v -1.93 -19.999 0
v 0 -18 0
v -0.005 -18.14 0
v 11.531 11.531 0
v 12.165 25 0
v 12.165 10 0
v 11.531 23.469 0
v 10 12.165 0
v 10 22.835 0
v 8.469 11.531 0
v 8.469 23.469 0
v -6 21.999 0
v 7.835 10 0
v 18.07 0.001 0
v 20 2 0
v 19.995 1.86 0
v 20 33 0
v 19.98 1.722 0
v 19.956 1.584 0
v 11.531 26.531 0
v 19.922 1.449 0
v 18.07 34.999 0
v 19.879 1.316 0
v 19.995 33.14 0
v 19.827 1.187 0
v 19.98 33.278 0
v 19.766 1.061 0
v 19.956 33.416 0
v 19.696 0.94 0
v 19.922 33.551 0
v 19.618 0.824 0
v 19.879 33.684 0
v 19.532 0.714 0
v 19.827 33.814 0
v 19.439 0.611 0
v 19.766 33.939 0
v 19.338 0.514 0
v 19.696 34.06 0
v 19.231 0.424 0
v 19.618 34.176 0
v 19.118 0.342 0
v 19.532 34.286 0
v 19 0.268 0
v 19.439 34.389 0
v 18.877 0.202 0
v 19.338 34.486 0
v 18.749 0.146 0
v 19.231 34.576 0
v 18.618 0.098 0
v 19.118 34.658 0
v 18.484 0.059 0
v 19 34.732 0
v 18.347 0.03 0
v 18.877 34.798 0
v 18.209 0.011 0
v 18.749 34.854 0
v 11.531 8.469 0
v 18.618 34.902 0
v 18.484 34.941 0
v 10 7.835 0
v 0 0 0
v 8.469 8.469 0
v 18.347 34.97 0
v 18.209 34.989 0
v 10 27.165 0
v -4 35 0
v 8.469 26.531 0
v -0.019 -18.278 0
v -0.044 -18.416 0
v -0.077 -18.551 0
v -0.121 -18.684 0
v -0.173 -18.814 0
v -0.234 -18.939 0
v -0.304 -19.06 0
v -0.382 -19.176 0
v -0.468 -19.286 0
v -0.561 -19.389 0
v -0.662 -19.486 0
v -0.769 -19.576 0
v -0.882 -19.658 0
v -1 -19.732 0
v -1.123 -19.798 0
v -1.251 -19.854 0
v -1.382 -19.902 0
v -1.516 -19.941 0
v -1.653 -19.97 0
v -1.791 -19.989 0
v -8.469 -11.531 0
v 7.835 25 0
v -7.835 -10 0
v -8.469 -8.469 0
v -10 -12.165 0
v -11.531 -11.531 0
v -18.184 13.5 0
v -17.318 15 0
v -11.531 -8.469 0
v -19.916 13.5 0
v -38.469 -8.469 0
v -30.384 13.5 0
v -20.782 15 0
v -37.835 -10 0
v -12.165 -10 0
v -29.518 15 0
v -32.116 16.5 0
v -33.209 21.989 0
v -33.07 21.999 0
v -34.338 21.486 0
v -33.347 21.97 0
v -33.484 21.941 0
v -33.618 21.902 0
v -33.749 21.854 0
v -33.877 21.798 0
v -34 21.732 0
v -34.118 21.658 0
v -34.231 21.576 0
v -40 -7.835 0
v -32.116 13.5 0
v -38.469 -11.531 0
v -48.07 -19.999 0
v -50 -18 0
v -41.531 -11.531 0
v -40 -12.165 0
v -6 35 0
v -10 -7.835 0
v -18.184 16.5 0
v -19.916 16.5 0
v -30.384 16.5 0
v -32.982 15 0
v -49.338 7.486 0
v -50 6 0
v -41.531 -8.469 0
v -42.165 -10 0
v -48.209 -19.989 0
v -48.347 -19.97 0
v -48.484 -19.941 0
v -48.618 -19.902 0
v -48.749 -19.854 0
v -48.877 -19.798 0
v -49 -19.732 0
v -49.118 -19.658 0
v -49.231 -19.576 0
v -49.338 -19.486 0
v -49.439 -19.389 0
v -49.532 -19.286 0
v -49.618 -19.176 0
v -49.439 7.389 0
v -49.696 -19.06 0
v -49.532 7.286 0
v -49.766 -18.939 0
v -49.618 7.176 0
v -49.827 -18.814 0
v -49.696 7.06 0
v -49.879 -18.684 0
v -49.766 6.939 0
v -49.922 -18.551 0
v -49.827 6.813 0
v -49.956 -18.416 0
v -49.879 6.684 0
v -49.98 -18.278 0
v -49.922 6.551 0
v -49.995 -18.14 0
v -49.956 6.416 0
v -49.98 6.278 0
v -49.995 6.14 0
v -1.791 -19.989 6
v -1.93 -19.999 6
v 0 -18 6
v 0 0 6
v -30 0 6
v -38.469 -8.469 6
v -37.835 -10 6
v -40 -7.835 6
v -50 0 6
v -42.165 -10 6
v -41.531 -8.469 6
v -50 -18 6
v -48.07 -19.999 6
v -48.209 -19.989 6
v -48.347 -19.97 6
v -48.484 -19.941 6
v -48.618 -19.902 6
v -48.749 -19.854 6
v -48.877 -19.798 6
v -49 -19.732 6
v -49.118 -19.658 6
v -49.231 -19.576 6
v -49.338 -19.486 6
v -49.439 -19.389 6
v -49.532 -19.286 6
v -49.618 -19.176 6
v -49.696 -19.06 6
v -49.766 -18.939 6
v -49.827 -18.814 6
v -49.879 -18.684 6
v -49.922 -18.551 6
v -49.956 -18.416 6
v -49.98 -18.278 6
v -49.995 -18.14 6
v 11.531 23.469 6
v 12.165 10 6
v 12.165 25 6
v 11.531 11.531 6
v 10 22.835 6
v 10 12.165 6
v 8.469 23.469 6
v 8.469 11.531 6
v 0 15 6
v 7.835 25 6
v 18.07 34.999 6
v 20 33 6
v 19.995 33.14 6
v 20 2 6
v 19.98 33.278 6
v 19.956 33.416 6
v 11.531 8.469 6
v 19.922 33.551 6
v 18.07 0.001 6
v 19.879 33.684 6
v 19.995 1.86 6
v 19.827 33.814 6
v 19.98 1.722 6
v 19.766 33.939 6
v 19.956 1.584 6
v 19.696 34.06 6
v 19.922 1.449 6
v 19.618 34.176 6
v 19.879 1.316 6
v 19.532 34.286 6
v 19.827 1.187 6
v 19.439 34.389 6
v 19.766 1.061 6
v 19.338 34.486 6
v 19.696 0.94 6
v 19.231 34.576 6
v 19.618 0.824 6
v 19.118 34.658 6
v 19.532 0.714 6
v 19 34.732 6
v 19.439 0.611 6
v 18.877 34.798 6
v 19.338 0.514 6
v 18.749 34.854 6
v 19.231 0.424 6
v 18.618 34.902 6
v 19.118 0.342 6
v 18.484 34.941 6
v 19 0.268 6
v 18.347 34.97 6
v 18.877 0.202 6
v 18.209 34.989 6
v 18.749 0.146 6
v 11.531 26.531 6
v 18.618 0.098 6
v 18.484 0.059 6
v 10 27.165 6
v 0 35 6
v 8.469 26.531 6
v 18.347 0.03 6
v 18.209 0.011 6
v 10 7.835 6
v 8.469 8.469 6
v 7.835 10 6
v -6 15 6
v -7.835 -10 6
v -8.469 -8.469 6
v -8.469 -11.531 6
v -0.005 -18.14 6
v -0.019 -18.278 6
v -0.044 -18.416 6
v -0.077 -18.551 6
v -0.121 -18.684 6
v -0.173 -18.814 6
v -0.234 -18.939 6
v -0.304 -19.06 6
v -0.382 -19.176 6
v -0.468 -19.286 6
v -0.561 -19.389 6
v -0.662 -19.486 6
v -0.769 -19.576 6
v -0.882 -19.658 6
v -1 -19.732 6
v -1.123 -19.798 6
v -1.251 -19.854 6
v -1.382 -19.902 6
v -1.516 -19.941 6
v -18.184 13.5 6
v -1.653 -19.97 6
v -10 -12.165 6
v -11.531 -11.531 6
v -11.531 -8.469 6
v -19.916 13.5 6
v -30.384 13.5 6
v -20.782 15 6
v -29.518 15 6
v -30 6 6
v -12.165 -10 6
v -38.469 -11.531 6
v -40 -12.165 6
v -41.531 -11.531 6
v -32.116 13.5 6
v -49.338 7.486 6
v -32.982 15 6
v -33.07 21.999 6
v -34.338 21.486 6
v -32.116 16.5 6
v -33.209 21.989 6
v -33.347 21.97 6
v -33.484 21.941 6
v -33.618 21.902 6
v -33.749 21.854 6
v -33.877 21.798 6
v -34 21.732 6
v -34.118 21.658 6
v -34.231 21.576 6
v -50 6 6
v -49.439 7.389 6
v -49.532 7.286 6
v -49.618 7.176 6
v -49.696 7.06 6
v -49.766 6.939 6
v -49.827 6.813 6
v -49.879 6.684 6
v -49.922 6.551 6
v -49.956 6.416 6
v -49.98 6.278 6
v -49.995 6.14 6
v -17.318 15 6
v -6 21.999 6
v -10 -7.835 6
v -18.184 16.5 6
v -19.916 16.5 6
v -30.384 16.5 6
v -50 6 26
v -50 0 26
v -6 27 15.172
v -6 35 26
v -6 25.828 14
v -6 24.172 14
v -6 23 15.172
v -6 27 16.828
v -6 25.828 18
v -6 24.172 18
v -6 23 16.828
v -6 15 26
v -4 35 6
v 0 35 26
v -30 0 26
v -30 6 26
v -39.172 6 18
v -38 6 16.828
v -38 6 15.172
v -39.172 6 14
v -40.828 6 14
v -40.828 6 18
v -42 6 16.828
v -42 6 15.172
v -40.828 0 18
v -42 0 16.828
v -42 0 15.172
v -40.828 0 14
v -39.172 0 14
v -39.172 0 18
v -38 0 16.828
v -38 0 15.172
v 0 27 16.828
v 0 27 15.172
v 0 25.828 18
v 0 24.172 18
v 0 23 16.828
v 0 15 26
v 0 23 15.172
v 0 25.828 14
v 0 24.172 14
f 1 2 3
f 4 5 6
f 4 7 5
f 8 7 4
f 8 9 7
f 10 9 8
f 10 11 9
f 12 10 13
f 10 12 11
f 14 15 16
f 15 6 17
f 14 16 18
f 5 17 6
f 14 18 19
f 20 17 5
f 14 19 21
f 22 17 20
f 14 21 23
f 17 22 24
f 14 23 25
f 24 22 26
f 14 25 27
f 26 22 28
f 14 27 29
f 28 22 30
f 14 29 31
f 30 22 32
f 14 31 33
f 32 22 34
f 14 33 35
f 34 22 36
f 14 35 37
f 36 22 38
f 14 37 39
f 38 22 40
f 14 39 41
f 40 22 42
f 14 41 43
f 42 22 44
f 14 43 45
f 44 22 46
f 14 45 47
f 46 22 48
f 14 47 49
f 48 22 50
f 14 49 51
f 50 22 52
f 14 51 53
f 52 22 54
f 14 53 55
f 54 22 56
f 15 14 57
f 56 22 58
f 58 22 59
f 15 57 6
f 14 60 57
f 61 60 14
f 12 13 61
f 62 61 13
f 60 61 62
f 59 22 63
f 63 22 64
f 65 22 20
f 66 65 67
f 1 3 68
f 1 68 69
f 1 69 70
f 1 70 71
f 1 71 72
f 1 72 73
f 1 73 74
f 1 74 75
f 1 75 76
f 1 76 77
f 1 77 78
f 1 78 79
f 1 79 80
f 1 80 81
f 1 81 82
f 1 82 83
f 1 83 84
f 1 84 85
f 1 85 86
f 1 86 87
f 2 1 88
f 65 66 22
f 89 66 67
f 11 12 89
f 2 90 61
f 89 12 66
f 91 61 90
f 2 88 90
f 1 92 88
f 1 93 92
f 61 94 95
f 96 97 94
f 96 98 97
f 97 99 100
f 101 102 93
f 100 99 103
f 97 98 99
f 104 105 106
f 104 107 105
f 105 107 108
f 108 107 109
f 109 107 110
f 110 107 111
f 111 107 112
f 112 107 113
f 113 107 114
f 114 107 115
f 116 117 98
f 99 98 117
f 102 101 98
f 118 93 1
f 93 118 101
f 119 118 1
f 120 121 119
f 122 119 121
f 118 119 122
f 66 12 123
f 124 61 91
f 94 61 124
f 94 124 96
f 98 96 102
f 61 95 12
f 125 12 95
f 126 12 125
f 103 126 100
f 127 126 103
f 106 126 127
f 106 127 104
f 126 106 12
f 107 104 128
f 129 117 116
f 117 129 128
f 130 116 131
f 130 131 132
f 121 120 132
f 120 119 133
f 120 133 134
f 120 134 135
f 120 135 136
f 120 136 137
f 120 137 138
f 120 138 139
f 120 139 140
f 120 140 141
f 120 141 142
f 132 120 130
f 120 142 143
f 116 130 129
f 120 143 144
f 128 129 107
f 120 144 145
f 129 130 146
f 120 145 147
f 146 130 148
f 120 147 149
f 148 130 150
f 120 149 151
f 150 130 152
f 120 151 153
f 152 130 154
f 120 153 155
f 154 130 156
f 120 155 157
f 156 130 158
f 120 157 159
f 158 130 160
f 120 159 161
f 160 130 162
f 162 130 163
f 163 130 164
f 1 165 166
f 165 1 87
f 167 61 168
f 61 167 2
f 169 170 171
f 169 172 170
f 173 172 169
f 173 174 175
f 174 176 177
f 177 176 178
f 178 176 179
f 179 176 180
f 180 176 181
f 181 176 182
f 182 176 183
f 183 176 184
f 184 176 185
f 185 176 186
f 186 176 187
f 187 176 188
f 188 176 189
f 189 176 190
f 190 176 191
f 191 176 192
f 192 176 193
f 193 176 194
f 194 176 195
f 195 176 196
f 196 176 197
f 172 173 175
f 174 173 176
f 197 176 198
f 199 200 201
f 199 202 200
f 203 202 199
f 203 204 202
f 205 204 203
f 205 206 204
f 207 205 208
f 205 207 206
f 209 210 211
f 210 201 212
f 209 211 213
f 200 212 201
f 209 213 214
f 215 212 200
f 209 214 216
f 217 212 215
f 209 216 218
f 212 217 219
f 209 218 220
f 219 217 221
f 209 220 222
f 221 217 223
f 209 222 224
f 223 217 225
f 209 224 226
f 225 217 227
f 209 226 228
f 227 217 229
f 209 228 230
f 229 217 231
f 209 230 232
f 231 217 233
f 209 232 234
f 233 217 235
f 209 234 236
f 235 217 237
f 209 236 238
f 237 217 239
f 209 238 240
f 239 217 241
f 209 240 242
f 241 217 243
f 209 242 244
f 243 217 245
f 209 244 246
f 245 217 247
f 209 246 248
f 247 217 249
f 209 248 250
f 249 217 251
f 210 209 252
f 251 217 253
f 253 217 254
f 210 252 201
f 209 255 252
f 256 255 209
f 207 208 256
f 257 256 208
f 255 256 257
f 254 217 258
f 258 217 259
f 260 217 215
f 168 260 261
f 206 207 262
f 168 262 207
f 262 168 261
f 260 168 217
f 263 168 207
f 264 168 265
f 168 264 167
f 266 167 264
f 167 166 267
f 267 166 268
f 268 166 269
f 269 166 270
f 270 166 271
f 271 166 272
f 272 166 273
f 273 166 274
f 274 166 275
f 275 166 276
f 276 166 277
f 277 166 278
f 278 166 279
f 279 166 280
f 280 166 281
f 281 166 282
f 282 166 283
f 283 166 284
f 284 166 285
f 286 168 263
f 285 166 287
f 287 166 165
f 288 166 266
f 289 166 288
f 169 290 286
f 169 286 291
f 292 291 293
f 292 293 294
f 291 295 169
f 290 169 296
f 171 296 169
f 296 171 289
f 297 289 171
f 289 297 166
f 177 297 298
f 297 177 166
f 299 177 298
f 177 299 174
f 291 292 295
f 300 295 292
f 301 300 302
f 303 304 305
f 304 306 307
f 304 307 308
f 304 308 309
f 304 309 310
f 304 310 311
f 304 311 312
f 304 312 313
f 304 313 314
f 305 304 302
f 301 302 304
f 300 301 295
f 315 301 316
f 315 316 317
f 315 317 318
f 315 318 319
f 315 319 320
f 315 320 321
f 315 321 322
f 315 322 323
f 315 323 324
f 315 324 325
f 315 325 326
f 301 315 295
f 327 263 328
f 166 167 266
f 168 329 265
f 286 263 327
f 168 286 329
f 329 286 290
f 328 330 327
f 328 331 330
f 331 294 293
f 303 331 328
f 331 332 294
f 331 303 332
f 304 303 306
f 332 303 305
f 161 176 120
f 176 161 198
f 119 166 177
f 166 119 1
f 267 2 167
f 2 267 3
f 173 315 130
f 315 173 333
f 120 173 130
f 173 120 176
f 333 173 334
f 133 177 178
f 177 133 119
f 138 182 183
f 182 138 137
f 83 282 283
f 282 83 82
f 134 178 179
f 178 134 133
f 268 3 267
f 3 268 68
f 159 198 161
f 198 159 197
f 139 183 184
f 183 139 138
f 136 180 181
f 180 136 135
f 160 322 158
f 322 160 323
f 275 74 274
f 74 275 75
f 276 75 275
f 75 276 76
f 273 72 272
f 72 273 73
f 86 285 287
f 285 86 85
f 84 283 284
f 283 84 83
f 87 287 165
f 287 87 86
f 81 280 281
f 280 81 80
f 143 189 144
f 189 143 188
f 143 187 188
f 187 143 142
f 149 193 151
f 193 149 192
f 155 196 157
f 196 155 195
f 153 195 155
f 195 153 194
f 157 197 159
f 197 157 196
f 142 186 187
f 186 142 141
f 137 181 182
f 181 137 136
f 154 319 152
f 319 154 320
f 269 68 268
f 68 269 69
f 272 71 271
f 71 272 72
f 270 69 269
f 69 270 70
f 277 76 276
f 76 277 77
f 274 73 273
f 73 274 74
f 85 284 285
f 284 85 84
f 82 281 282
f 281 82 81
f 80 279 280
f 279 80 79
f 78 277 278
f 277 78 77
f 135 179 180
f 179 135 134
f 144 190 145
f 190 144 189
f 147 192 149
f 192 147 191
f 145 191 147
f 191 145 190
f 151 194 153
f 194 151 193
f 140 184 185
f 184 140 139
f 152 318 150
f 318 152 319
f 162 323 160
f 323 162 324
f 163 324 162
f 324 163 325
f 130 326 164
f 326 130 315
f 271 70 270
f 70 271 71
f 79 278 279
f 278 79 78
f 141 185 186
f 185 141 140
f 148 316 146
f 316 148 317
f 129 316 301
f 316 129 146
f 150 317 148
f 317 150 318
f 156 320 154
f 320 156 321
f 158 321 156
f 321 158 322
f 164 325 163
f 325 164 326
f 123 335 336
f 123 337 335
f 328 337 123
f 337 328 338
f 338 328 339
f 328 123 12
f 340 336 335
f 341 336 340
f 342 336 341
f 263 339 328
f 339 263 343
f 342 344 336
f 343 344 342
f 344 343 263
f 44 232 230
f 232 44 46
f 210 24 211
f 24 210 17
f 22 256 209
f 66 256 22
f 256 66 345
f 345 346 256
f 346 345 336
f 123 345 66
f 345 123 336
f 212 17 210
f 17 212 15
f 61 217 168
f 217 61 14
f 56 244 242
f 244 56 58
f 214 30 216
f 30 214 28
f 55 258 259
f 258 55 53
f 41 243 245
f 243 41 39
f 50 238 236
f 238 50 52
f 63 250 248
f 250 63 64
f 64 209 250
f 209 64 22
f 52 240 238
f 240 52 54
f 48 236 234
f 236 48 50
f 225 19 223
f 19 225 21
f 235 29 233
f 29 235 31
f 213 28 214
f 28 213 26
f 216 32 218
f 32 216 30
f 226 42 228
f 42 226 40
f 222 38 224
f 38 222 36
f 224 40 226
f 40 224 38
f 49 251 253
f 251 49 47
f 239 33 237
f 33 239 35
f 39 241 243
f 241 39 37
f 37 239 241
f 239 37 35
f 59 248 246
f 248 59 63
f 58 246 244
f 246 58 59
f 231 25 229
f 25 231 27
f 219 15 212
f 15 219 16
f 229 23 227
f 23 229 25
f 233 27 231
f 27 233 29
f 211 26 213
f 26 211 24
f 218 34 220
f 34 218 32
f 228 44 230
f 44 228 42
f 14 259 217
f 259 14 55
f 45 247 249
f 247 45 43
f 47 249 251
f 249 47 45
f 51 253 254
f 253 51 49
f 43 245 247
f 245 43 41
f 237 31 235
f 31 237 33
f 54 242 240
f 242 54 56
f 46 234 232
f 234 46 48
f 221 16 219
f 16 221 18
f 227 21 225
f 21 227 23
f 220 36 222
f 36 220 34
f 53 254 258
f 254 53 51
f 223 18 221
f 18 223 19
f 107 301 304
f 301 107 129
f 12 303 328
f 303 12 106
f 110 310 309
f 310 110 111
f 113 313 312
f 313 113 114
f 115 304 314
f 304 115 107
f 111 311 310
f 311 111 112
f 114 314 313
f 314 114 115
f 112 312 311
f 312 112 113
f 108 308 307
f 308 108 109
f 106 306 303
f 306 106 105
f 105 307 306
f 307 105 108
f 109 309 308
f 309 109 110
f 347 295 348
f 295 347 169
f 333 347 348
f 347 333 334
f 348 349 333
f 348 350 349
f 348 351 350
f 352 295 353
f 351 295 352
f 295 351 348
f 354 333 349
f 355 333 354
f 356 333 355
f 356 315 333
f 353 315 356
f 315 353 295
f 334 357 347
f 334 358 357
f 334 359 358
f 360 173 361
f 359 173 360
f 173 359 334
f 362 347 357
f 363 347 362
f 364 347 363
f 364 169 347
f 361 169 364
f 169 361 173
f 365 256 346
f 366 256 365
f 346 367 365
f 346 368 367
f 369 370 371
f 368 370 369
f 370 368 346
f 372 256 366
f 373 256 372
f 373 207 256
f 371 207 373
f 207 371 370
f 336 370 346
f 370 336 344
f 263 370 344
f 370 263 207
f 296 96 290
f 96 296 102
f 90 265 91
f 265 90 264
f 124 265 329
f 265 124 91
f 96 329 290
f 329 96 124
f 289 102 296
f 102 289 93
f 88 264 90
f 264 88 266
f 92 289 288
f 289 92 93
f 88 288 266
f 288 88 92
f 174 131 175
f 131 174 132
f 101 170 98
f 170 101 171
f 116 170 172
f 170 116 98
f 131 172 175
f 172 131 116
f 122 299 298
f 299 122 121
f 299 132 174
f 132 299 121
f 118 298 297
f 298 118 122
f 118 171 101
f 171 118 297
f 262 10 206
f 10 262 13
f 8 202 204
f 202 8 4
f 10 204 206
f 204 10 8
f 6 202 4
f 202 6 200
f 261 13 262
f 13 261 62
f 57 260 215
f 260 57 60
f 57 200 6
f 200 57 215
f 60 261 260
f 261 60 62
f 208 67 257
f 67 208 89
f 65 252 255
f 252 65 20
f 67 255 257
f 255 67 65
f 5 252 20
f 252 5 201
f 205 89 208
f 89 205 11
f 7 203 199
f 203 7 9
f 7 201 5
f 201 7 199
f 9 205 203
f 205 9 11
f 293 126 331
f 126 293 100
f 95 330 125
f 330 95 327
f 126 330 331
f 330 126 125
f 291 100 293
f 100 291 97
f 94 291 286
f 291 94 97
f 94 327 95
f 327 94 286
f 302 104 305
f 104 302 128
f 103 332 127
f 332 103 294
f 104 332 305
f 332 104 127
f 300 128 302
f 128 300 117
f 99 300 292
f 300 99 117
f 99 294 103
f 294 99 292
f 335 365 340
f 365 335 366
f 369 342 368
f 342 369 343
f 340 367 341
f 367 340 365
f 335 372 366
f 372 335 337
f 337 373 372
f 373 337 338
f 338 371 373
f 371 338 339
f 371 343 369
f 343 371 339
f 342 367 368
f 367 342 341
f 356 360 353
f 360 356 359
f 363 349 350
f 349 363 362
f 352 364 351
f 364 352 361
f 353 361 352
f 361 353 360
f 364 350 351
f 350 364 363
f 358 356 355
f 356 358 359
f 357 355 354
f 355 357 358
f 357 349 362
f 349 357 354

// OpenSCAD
// file: polyhole.scad
// The Cylinder is dead! Long live the Cylinder!
// A module for a polyhole by radius, based on Nophead's work.

module polyhole(h, r, cent = false)
{
    n = max(round(4 * r), 3);
    cylinder(h = h, r = r / cos(180 / n), $fn = n, center = cent);
}
// file: BearingMount.scad
// A generic bearing mount

use<polyhole.scad>

BearingMount();

module BearingMount()
{
    difference()
    {
        union()
        {
            hull()
            {
                translate([2, 6, 0])
                    cylinder(h = 6, r = 2, $fn = 90);
                translate([2, -18, 0])
                    cylinder(h = 6, r = 2, $fn = 90);
                translate([48, -18, 0])
                    cylinder(h = 6, r = 2, $fn = 90);
                translate([48, 6, 0])
                    cylinder(h = 6, r = 2, $fn = 90);
            }
            hull()
            {
                translate([5, 1, 3])
                    cube([2, 2, 6], center = true);
                translate([-18, 2, 0])
                    cylinder(h = 6, r = 2, $fn = 90);
                translate([-18, 33, 0])
                    cylinder(h = 6, r = 2, $fn = 90);
                translate([5, 34, 3])
                    cube([2, 2, 6], center = true);
            }
            hull()
            {
                translate([6, 6, 0])
                    cylinder(h = 6, r = 2, $fn = 90);
                translate([6, 20, 0])
                    cylinder(h = 6, r = 2, $fn = 90);
                translate([33, 20, 0])
                    cylinder(h = 6, r = 2, $fn = 90);
                translate([48, 6, 0])
                    cylinder(h = 6, r = 2, $fn = 90);
            }
            translate([40, 3, 16])
                cube([20, 6, 20], center = true);
            translate([3, 25, 16])
                cube([6, 20, 20], center = true);
        }
        translate([10, -10, 0])
            polyhole(6, 2);
        translate([40, -10, 0])
            polyhole(6, 2);
        translate([-10, 10, 0])
            polyhole(6, 2);
        translate([-10, 25, 0])
            polyhole(6, 2);
        translate([19.05, 15, 0])
            polyhole(6, 1.5);
        translate([31.25, 15, 0])
            polyhole(6, 1.5);
        translate([0, 25, 16])
            rotate([90, 22.5, 90])
                polyhole(7, 2);
        translate([40, 0, 16])
            rotate([-90, 22.5, 0])
                polyhole(7, 2);
    }
}
// main file
// The other Bearing Mount

use<BearingMount.scad>

scale([-1, 1, 1])
    BearingMount();
